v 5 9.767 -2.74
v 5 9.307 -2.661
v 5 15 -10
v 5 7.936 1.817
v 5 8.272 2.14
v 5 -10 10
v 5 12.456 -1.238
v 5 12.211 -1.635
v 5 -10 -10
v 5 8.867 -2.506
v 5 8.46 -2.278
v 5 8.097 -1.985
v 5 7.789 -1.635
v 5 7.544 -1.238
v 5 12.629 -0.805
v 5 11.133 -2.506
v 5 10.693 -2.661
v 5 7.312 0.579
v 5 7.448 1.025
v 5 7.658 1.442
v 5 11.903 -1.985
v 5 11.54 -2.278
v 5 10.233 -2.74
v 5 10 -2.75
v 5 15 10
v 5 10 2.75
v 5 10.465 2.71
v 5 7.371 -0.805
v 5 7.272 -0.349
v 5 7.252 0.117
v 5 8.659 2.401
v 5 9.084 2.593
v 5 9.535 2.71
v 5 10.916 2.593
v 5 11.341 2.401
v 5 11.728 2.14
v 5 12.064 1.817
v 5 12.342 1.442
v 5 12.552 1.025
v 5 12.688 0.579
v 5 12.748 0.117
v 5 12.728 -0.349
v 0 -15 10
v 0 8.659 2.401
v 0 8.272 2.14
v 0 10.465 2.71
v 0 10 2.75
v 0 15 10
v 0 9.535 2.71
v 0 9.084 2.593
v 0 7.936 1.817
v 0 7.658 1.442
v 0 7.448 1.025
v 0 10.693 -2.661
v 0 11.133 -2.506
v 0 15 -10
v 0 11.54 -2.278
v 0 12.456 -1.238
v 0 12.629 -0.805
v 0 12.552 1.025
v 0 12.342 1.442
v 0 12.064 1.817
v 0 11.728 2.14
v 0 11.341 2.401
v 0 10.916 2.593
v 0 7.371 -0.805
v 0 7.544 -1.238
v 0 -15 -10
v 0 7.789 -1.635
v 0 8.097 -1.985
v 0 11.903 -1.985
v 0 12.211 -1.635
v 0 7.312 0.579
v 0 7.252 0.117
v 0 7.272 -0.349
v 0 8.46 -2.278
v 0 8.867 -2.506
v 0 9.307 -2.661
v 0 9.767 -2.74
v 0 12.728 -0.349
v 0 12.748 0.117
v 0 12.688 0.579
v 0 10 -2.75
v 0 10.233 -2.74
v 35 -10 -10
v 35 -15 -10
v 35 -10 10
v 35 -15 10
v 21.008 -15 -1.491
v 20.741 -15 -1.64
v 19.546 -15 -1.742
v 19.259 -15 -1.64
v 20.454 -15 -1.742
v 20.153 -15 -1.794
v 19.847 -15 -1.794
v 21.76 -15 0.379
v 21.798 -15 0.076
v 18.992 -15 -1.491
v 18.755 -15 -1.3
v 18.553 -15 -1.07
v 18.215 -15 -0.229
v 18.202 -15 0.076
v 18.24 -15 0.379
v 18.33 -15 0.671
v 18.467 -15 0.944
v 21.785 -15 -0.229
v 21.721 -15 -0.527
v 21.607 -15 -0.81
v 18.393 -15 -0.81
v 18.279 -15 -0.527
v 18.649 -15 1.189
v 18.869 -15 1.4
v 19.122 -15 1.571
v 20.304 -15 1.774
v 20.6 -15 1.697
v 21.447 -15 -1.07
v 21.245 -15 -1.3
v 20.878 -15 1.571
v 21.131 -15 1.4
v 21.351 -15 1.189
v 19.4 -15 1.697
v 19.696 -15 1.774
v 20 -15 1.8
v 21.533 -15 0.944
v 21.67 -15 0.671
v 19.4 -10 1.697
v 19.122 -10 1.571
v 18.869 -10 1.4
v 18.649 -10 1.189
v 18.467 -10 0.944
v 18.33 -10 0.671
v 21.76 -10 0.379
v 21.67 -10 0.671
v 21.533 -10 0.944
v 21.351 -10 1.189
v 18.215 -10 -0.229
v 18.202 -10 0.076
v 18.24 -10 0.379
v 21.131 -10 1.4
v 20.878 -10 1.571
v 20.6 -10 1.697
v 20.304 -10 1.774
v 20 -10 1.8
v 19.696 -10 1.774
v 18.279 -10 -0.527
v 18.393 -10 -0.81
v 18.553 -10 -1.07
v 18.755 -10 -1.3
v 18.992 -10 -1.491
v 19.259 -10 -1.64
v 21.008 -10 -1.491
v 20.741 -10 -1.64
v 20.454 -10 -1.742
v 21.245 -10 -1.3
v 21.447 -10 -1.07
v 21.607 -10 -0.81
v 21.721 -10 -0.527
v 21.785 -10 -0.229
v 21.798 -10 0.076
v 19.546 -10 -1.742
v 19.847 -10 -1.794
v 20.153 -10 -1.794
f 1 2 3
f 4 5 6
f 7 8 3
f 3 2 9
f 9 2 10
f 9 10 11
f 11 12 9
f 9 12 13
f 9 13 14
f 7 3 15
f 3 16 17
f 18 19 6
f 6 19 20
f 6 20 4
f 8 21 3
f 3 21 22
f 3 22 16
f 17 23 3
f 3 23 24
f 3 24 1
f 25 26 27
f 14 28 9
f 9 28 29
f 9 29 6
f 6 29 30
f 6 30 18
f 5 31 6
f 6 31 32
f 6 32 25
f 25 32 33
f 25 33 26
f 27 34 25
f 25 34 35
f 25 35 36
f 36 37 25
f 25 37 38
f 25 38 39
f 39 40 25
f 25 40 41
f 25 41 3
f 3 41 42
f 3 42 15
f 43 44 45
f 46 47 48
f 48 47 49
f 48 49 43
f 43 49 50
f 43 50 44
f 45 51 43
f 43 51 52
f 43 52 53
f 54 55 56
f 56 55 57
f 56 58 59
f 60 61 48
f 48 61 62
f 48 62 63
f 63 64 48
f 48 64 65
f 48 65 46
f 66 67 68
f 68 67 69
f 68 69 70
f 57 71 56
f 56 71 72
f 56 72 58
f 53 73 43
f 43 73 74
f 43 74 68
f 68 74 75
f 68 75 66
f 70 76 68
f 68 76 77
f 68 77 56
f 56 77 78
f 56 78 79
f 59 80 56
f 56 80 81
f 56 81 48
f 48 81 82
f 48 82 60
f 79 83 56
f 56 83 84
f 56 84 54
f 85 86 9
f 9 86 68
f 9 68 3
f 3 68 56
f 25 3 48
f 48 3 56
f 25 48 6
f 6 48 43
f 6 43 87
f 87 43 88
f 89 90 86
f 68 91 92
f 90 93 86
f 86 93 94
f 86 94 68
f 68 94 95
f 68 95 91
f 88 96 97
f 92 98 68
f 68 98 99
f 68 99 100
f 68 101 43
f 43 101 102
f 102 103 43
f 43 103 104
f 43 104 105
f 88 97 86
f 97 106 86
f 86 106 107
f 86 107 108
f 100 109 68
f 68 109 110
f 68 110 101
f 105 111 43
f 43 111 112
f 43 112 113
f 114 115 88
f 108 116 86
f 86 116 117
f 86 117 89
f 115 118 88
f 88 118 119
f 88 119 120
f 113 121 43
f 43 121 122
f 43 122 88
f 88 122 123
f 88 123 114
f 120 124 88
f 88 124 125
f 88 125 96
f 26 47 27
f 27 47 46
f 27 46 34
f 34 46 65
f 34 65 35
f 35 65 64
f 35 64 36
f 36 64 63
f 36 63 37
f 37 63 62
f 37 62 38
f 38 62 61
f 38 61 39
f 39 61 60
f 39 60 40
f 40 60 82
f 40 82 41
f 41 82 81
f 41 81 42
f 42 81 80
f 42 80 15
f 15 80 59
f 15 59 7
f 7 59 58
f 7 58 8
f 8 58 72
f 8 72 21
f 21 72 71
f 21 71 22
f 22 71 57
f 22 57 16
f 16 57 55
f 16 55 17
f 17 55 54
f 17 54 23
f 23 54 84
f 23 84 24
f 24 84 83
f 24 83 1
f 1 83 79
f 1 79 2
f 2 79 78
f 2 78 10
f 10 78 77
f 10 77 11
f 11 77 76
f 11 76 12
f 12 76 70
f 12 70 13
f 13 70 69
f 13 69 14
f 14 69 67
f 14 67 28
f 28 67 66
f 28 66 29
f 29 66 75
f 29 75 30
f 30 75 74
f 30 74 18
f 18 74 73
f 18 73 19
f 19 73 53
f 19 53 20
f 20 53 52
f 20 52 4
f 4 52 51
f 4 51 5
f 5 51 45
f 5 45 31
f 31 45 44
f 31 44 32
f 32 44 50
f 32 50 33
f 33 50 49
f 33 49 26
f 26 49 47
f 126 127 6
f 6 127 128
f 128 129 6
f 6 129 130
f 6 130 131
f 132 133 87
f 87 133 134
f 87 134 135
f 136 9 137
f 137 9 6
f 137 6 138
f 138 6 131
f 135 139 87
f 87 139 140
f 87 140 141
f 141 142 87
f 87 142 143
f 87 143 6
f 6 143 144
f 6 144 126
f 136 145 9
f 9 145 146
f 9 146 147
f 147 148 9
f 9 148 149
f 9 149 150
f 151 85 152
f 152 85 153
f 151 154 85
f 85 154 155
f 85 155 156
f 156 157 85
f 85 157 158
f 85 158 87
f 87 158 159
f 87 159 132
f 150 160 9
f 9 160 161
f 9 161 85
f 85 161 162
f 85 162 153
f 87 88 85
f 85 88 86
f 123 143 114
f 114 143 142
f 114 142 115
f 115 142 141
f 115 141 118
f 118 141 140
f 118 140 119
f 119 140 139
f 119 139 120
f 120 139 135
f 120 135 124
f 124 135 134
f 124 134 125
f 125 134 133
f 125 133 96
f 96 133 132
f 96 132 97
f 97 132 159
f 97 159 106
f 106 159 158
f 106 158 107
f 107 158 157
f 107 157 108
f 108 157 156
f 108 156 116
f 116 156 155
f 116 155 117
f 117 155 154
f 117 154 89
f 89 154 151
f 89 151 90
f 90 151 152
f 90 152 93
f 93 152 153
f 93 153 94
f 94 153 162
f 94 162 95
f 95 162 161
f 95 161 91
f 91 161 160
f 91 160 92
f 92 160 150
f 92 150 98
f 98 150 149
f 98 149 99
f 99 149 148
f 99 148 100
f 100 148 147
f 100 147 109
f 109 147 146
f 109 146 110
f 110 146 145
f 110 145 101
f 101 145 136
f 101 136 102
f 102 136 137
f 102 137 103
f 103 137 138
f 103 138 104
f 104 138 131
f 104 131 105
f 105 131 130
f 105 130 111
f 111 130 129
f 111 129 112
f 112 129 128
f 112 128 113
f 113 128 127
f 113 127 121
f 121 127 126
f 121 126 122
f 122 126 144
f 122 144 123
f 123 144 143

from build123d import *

# Parameters (mm, degrees)
SKETCH_5_W          = 20
SKETCH_5_H          = 30
SKETCH_5_R          = 2.75
EXTRUDE_1_DEPTH     = 5
SKETCH_6_W          = 20
SKETCH_6_H          = 5
EXTRUDE_2_DEPTH     = 30
SKETCH_7_R          = 1.8
CUT_EXTRUDE_1_DEPTH = 6


with BuildPart() as part:
    # 草图5 → 凸台-拉伸1 (new body)
    with BuildSketch(Plane(origin=(0, 0, 0), x_dir=(0, 0, -1), z_dir=(1, 0, 0))):
        Rectangle(SKETCH_5_W, SKETCH_5_H)
        with Locations((0, 10)):
            Circle(SKETCH_5_R, mode=Mode.SUBTRACT)
    extrude(amount=EXTRUDE_1_DEPTH)

    # 草图6 → 凸台-拉伸2 (add)
    with BuildSketch(Plane(origin=(5, 0, 0), x_dir=(0, 0, -1), z_dir=(1, 0, 0))):
        with Locations((0, -12.5)):
            Rectangle(SKETCH_6_W, SKETCH_6_H)
    extrude(amount=EXTRUDE_2_DEPTH)

    # 草图7 → 切除-拉伸1 (cut, through all)
    with BuildSketch(Plane(origin=(0, -10, 0), x_dir=(1, 0, 0), z_dir=(0, 1, 0))):
        with Locations((20, 0)):
            Circle(SKETCH_7_R)
    extrude(amount=-CUT_EXTRUDE_1_DEPTH, mode=Mode.SUBTRACT)


solid = part.part
